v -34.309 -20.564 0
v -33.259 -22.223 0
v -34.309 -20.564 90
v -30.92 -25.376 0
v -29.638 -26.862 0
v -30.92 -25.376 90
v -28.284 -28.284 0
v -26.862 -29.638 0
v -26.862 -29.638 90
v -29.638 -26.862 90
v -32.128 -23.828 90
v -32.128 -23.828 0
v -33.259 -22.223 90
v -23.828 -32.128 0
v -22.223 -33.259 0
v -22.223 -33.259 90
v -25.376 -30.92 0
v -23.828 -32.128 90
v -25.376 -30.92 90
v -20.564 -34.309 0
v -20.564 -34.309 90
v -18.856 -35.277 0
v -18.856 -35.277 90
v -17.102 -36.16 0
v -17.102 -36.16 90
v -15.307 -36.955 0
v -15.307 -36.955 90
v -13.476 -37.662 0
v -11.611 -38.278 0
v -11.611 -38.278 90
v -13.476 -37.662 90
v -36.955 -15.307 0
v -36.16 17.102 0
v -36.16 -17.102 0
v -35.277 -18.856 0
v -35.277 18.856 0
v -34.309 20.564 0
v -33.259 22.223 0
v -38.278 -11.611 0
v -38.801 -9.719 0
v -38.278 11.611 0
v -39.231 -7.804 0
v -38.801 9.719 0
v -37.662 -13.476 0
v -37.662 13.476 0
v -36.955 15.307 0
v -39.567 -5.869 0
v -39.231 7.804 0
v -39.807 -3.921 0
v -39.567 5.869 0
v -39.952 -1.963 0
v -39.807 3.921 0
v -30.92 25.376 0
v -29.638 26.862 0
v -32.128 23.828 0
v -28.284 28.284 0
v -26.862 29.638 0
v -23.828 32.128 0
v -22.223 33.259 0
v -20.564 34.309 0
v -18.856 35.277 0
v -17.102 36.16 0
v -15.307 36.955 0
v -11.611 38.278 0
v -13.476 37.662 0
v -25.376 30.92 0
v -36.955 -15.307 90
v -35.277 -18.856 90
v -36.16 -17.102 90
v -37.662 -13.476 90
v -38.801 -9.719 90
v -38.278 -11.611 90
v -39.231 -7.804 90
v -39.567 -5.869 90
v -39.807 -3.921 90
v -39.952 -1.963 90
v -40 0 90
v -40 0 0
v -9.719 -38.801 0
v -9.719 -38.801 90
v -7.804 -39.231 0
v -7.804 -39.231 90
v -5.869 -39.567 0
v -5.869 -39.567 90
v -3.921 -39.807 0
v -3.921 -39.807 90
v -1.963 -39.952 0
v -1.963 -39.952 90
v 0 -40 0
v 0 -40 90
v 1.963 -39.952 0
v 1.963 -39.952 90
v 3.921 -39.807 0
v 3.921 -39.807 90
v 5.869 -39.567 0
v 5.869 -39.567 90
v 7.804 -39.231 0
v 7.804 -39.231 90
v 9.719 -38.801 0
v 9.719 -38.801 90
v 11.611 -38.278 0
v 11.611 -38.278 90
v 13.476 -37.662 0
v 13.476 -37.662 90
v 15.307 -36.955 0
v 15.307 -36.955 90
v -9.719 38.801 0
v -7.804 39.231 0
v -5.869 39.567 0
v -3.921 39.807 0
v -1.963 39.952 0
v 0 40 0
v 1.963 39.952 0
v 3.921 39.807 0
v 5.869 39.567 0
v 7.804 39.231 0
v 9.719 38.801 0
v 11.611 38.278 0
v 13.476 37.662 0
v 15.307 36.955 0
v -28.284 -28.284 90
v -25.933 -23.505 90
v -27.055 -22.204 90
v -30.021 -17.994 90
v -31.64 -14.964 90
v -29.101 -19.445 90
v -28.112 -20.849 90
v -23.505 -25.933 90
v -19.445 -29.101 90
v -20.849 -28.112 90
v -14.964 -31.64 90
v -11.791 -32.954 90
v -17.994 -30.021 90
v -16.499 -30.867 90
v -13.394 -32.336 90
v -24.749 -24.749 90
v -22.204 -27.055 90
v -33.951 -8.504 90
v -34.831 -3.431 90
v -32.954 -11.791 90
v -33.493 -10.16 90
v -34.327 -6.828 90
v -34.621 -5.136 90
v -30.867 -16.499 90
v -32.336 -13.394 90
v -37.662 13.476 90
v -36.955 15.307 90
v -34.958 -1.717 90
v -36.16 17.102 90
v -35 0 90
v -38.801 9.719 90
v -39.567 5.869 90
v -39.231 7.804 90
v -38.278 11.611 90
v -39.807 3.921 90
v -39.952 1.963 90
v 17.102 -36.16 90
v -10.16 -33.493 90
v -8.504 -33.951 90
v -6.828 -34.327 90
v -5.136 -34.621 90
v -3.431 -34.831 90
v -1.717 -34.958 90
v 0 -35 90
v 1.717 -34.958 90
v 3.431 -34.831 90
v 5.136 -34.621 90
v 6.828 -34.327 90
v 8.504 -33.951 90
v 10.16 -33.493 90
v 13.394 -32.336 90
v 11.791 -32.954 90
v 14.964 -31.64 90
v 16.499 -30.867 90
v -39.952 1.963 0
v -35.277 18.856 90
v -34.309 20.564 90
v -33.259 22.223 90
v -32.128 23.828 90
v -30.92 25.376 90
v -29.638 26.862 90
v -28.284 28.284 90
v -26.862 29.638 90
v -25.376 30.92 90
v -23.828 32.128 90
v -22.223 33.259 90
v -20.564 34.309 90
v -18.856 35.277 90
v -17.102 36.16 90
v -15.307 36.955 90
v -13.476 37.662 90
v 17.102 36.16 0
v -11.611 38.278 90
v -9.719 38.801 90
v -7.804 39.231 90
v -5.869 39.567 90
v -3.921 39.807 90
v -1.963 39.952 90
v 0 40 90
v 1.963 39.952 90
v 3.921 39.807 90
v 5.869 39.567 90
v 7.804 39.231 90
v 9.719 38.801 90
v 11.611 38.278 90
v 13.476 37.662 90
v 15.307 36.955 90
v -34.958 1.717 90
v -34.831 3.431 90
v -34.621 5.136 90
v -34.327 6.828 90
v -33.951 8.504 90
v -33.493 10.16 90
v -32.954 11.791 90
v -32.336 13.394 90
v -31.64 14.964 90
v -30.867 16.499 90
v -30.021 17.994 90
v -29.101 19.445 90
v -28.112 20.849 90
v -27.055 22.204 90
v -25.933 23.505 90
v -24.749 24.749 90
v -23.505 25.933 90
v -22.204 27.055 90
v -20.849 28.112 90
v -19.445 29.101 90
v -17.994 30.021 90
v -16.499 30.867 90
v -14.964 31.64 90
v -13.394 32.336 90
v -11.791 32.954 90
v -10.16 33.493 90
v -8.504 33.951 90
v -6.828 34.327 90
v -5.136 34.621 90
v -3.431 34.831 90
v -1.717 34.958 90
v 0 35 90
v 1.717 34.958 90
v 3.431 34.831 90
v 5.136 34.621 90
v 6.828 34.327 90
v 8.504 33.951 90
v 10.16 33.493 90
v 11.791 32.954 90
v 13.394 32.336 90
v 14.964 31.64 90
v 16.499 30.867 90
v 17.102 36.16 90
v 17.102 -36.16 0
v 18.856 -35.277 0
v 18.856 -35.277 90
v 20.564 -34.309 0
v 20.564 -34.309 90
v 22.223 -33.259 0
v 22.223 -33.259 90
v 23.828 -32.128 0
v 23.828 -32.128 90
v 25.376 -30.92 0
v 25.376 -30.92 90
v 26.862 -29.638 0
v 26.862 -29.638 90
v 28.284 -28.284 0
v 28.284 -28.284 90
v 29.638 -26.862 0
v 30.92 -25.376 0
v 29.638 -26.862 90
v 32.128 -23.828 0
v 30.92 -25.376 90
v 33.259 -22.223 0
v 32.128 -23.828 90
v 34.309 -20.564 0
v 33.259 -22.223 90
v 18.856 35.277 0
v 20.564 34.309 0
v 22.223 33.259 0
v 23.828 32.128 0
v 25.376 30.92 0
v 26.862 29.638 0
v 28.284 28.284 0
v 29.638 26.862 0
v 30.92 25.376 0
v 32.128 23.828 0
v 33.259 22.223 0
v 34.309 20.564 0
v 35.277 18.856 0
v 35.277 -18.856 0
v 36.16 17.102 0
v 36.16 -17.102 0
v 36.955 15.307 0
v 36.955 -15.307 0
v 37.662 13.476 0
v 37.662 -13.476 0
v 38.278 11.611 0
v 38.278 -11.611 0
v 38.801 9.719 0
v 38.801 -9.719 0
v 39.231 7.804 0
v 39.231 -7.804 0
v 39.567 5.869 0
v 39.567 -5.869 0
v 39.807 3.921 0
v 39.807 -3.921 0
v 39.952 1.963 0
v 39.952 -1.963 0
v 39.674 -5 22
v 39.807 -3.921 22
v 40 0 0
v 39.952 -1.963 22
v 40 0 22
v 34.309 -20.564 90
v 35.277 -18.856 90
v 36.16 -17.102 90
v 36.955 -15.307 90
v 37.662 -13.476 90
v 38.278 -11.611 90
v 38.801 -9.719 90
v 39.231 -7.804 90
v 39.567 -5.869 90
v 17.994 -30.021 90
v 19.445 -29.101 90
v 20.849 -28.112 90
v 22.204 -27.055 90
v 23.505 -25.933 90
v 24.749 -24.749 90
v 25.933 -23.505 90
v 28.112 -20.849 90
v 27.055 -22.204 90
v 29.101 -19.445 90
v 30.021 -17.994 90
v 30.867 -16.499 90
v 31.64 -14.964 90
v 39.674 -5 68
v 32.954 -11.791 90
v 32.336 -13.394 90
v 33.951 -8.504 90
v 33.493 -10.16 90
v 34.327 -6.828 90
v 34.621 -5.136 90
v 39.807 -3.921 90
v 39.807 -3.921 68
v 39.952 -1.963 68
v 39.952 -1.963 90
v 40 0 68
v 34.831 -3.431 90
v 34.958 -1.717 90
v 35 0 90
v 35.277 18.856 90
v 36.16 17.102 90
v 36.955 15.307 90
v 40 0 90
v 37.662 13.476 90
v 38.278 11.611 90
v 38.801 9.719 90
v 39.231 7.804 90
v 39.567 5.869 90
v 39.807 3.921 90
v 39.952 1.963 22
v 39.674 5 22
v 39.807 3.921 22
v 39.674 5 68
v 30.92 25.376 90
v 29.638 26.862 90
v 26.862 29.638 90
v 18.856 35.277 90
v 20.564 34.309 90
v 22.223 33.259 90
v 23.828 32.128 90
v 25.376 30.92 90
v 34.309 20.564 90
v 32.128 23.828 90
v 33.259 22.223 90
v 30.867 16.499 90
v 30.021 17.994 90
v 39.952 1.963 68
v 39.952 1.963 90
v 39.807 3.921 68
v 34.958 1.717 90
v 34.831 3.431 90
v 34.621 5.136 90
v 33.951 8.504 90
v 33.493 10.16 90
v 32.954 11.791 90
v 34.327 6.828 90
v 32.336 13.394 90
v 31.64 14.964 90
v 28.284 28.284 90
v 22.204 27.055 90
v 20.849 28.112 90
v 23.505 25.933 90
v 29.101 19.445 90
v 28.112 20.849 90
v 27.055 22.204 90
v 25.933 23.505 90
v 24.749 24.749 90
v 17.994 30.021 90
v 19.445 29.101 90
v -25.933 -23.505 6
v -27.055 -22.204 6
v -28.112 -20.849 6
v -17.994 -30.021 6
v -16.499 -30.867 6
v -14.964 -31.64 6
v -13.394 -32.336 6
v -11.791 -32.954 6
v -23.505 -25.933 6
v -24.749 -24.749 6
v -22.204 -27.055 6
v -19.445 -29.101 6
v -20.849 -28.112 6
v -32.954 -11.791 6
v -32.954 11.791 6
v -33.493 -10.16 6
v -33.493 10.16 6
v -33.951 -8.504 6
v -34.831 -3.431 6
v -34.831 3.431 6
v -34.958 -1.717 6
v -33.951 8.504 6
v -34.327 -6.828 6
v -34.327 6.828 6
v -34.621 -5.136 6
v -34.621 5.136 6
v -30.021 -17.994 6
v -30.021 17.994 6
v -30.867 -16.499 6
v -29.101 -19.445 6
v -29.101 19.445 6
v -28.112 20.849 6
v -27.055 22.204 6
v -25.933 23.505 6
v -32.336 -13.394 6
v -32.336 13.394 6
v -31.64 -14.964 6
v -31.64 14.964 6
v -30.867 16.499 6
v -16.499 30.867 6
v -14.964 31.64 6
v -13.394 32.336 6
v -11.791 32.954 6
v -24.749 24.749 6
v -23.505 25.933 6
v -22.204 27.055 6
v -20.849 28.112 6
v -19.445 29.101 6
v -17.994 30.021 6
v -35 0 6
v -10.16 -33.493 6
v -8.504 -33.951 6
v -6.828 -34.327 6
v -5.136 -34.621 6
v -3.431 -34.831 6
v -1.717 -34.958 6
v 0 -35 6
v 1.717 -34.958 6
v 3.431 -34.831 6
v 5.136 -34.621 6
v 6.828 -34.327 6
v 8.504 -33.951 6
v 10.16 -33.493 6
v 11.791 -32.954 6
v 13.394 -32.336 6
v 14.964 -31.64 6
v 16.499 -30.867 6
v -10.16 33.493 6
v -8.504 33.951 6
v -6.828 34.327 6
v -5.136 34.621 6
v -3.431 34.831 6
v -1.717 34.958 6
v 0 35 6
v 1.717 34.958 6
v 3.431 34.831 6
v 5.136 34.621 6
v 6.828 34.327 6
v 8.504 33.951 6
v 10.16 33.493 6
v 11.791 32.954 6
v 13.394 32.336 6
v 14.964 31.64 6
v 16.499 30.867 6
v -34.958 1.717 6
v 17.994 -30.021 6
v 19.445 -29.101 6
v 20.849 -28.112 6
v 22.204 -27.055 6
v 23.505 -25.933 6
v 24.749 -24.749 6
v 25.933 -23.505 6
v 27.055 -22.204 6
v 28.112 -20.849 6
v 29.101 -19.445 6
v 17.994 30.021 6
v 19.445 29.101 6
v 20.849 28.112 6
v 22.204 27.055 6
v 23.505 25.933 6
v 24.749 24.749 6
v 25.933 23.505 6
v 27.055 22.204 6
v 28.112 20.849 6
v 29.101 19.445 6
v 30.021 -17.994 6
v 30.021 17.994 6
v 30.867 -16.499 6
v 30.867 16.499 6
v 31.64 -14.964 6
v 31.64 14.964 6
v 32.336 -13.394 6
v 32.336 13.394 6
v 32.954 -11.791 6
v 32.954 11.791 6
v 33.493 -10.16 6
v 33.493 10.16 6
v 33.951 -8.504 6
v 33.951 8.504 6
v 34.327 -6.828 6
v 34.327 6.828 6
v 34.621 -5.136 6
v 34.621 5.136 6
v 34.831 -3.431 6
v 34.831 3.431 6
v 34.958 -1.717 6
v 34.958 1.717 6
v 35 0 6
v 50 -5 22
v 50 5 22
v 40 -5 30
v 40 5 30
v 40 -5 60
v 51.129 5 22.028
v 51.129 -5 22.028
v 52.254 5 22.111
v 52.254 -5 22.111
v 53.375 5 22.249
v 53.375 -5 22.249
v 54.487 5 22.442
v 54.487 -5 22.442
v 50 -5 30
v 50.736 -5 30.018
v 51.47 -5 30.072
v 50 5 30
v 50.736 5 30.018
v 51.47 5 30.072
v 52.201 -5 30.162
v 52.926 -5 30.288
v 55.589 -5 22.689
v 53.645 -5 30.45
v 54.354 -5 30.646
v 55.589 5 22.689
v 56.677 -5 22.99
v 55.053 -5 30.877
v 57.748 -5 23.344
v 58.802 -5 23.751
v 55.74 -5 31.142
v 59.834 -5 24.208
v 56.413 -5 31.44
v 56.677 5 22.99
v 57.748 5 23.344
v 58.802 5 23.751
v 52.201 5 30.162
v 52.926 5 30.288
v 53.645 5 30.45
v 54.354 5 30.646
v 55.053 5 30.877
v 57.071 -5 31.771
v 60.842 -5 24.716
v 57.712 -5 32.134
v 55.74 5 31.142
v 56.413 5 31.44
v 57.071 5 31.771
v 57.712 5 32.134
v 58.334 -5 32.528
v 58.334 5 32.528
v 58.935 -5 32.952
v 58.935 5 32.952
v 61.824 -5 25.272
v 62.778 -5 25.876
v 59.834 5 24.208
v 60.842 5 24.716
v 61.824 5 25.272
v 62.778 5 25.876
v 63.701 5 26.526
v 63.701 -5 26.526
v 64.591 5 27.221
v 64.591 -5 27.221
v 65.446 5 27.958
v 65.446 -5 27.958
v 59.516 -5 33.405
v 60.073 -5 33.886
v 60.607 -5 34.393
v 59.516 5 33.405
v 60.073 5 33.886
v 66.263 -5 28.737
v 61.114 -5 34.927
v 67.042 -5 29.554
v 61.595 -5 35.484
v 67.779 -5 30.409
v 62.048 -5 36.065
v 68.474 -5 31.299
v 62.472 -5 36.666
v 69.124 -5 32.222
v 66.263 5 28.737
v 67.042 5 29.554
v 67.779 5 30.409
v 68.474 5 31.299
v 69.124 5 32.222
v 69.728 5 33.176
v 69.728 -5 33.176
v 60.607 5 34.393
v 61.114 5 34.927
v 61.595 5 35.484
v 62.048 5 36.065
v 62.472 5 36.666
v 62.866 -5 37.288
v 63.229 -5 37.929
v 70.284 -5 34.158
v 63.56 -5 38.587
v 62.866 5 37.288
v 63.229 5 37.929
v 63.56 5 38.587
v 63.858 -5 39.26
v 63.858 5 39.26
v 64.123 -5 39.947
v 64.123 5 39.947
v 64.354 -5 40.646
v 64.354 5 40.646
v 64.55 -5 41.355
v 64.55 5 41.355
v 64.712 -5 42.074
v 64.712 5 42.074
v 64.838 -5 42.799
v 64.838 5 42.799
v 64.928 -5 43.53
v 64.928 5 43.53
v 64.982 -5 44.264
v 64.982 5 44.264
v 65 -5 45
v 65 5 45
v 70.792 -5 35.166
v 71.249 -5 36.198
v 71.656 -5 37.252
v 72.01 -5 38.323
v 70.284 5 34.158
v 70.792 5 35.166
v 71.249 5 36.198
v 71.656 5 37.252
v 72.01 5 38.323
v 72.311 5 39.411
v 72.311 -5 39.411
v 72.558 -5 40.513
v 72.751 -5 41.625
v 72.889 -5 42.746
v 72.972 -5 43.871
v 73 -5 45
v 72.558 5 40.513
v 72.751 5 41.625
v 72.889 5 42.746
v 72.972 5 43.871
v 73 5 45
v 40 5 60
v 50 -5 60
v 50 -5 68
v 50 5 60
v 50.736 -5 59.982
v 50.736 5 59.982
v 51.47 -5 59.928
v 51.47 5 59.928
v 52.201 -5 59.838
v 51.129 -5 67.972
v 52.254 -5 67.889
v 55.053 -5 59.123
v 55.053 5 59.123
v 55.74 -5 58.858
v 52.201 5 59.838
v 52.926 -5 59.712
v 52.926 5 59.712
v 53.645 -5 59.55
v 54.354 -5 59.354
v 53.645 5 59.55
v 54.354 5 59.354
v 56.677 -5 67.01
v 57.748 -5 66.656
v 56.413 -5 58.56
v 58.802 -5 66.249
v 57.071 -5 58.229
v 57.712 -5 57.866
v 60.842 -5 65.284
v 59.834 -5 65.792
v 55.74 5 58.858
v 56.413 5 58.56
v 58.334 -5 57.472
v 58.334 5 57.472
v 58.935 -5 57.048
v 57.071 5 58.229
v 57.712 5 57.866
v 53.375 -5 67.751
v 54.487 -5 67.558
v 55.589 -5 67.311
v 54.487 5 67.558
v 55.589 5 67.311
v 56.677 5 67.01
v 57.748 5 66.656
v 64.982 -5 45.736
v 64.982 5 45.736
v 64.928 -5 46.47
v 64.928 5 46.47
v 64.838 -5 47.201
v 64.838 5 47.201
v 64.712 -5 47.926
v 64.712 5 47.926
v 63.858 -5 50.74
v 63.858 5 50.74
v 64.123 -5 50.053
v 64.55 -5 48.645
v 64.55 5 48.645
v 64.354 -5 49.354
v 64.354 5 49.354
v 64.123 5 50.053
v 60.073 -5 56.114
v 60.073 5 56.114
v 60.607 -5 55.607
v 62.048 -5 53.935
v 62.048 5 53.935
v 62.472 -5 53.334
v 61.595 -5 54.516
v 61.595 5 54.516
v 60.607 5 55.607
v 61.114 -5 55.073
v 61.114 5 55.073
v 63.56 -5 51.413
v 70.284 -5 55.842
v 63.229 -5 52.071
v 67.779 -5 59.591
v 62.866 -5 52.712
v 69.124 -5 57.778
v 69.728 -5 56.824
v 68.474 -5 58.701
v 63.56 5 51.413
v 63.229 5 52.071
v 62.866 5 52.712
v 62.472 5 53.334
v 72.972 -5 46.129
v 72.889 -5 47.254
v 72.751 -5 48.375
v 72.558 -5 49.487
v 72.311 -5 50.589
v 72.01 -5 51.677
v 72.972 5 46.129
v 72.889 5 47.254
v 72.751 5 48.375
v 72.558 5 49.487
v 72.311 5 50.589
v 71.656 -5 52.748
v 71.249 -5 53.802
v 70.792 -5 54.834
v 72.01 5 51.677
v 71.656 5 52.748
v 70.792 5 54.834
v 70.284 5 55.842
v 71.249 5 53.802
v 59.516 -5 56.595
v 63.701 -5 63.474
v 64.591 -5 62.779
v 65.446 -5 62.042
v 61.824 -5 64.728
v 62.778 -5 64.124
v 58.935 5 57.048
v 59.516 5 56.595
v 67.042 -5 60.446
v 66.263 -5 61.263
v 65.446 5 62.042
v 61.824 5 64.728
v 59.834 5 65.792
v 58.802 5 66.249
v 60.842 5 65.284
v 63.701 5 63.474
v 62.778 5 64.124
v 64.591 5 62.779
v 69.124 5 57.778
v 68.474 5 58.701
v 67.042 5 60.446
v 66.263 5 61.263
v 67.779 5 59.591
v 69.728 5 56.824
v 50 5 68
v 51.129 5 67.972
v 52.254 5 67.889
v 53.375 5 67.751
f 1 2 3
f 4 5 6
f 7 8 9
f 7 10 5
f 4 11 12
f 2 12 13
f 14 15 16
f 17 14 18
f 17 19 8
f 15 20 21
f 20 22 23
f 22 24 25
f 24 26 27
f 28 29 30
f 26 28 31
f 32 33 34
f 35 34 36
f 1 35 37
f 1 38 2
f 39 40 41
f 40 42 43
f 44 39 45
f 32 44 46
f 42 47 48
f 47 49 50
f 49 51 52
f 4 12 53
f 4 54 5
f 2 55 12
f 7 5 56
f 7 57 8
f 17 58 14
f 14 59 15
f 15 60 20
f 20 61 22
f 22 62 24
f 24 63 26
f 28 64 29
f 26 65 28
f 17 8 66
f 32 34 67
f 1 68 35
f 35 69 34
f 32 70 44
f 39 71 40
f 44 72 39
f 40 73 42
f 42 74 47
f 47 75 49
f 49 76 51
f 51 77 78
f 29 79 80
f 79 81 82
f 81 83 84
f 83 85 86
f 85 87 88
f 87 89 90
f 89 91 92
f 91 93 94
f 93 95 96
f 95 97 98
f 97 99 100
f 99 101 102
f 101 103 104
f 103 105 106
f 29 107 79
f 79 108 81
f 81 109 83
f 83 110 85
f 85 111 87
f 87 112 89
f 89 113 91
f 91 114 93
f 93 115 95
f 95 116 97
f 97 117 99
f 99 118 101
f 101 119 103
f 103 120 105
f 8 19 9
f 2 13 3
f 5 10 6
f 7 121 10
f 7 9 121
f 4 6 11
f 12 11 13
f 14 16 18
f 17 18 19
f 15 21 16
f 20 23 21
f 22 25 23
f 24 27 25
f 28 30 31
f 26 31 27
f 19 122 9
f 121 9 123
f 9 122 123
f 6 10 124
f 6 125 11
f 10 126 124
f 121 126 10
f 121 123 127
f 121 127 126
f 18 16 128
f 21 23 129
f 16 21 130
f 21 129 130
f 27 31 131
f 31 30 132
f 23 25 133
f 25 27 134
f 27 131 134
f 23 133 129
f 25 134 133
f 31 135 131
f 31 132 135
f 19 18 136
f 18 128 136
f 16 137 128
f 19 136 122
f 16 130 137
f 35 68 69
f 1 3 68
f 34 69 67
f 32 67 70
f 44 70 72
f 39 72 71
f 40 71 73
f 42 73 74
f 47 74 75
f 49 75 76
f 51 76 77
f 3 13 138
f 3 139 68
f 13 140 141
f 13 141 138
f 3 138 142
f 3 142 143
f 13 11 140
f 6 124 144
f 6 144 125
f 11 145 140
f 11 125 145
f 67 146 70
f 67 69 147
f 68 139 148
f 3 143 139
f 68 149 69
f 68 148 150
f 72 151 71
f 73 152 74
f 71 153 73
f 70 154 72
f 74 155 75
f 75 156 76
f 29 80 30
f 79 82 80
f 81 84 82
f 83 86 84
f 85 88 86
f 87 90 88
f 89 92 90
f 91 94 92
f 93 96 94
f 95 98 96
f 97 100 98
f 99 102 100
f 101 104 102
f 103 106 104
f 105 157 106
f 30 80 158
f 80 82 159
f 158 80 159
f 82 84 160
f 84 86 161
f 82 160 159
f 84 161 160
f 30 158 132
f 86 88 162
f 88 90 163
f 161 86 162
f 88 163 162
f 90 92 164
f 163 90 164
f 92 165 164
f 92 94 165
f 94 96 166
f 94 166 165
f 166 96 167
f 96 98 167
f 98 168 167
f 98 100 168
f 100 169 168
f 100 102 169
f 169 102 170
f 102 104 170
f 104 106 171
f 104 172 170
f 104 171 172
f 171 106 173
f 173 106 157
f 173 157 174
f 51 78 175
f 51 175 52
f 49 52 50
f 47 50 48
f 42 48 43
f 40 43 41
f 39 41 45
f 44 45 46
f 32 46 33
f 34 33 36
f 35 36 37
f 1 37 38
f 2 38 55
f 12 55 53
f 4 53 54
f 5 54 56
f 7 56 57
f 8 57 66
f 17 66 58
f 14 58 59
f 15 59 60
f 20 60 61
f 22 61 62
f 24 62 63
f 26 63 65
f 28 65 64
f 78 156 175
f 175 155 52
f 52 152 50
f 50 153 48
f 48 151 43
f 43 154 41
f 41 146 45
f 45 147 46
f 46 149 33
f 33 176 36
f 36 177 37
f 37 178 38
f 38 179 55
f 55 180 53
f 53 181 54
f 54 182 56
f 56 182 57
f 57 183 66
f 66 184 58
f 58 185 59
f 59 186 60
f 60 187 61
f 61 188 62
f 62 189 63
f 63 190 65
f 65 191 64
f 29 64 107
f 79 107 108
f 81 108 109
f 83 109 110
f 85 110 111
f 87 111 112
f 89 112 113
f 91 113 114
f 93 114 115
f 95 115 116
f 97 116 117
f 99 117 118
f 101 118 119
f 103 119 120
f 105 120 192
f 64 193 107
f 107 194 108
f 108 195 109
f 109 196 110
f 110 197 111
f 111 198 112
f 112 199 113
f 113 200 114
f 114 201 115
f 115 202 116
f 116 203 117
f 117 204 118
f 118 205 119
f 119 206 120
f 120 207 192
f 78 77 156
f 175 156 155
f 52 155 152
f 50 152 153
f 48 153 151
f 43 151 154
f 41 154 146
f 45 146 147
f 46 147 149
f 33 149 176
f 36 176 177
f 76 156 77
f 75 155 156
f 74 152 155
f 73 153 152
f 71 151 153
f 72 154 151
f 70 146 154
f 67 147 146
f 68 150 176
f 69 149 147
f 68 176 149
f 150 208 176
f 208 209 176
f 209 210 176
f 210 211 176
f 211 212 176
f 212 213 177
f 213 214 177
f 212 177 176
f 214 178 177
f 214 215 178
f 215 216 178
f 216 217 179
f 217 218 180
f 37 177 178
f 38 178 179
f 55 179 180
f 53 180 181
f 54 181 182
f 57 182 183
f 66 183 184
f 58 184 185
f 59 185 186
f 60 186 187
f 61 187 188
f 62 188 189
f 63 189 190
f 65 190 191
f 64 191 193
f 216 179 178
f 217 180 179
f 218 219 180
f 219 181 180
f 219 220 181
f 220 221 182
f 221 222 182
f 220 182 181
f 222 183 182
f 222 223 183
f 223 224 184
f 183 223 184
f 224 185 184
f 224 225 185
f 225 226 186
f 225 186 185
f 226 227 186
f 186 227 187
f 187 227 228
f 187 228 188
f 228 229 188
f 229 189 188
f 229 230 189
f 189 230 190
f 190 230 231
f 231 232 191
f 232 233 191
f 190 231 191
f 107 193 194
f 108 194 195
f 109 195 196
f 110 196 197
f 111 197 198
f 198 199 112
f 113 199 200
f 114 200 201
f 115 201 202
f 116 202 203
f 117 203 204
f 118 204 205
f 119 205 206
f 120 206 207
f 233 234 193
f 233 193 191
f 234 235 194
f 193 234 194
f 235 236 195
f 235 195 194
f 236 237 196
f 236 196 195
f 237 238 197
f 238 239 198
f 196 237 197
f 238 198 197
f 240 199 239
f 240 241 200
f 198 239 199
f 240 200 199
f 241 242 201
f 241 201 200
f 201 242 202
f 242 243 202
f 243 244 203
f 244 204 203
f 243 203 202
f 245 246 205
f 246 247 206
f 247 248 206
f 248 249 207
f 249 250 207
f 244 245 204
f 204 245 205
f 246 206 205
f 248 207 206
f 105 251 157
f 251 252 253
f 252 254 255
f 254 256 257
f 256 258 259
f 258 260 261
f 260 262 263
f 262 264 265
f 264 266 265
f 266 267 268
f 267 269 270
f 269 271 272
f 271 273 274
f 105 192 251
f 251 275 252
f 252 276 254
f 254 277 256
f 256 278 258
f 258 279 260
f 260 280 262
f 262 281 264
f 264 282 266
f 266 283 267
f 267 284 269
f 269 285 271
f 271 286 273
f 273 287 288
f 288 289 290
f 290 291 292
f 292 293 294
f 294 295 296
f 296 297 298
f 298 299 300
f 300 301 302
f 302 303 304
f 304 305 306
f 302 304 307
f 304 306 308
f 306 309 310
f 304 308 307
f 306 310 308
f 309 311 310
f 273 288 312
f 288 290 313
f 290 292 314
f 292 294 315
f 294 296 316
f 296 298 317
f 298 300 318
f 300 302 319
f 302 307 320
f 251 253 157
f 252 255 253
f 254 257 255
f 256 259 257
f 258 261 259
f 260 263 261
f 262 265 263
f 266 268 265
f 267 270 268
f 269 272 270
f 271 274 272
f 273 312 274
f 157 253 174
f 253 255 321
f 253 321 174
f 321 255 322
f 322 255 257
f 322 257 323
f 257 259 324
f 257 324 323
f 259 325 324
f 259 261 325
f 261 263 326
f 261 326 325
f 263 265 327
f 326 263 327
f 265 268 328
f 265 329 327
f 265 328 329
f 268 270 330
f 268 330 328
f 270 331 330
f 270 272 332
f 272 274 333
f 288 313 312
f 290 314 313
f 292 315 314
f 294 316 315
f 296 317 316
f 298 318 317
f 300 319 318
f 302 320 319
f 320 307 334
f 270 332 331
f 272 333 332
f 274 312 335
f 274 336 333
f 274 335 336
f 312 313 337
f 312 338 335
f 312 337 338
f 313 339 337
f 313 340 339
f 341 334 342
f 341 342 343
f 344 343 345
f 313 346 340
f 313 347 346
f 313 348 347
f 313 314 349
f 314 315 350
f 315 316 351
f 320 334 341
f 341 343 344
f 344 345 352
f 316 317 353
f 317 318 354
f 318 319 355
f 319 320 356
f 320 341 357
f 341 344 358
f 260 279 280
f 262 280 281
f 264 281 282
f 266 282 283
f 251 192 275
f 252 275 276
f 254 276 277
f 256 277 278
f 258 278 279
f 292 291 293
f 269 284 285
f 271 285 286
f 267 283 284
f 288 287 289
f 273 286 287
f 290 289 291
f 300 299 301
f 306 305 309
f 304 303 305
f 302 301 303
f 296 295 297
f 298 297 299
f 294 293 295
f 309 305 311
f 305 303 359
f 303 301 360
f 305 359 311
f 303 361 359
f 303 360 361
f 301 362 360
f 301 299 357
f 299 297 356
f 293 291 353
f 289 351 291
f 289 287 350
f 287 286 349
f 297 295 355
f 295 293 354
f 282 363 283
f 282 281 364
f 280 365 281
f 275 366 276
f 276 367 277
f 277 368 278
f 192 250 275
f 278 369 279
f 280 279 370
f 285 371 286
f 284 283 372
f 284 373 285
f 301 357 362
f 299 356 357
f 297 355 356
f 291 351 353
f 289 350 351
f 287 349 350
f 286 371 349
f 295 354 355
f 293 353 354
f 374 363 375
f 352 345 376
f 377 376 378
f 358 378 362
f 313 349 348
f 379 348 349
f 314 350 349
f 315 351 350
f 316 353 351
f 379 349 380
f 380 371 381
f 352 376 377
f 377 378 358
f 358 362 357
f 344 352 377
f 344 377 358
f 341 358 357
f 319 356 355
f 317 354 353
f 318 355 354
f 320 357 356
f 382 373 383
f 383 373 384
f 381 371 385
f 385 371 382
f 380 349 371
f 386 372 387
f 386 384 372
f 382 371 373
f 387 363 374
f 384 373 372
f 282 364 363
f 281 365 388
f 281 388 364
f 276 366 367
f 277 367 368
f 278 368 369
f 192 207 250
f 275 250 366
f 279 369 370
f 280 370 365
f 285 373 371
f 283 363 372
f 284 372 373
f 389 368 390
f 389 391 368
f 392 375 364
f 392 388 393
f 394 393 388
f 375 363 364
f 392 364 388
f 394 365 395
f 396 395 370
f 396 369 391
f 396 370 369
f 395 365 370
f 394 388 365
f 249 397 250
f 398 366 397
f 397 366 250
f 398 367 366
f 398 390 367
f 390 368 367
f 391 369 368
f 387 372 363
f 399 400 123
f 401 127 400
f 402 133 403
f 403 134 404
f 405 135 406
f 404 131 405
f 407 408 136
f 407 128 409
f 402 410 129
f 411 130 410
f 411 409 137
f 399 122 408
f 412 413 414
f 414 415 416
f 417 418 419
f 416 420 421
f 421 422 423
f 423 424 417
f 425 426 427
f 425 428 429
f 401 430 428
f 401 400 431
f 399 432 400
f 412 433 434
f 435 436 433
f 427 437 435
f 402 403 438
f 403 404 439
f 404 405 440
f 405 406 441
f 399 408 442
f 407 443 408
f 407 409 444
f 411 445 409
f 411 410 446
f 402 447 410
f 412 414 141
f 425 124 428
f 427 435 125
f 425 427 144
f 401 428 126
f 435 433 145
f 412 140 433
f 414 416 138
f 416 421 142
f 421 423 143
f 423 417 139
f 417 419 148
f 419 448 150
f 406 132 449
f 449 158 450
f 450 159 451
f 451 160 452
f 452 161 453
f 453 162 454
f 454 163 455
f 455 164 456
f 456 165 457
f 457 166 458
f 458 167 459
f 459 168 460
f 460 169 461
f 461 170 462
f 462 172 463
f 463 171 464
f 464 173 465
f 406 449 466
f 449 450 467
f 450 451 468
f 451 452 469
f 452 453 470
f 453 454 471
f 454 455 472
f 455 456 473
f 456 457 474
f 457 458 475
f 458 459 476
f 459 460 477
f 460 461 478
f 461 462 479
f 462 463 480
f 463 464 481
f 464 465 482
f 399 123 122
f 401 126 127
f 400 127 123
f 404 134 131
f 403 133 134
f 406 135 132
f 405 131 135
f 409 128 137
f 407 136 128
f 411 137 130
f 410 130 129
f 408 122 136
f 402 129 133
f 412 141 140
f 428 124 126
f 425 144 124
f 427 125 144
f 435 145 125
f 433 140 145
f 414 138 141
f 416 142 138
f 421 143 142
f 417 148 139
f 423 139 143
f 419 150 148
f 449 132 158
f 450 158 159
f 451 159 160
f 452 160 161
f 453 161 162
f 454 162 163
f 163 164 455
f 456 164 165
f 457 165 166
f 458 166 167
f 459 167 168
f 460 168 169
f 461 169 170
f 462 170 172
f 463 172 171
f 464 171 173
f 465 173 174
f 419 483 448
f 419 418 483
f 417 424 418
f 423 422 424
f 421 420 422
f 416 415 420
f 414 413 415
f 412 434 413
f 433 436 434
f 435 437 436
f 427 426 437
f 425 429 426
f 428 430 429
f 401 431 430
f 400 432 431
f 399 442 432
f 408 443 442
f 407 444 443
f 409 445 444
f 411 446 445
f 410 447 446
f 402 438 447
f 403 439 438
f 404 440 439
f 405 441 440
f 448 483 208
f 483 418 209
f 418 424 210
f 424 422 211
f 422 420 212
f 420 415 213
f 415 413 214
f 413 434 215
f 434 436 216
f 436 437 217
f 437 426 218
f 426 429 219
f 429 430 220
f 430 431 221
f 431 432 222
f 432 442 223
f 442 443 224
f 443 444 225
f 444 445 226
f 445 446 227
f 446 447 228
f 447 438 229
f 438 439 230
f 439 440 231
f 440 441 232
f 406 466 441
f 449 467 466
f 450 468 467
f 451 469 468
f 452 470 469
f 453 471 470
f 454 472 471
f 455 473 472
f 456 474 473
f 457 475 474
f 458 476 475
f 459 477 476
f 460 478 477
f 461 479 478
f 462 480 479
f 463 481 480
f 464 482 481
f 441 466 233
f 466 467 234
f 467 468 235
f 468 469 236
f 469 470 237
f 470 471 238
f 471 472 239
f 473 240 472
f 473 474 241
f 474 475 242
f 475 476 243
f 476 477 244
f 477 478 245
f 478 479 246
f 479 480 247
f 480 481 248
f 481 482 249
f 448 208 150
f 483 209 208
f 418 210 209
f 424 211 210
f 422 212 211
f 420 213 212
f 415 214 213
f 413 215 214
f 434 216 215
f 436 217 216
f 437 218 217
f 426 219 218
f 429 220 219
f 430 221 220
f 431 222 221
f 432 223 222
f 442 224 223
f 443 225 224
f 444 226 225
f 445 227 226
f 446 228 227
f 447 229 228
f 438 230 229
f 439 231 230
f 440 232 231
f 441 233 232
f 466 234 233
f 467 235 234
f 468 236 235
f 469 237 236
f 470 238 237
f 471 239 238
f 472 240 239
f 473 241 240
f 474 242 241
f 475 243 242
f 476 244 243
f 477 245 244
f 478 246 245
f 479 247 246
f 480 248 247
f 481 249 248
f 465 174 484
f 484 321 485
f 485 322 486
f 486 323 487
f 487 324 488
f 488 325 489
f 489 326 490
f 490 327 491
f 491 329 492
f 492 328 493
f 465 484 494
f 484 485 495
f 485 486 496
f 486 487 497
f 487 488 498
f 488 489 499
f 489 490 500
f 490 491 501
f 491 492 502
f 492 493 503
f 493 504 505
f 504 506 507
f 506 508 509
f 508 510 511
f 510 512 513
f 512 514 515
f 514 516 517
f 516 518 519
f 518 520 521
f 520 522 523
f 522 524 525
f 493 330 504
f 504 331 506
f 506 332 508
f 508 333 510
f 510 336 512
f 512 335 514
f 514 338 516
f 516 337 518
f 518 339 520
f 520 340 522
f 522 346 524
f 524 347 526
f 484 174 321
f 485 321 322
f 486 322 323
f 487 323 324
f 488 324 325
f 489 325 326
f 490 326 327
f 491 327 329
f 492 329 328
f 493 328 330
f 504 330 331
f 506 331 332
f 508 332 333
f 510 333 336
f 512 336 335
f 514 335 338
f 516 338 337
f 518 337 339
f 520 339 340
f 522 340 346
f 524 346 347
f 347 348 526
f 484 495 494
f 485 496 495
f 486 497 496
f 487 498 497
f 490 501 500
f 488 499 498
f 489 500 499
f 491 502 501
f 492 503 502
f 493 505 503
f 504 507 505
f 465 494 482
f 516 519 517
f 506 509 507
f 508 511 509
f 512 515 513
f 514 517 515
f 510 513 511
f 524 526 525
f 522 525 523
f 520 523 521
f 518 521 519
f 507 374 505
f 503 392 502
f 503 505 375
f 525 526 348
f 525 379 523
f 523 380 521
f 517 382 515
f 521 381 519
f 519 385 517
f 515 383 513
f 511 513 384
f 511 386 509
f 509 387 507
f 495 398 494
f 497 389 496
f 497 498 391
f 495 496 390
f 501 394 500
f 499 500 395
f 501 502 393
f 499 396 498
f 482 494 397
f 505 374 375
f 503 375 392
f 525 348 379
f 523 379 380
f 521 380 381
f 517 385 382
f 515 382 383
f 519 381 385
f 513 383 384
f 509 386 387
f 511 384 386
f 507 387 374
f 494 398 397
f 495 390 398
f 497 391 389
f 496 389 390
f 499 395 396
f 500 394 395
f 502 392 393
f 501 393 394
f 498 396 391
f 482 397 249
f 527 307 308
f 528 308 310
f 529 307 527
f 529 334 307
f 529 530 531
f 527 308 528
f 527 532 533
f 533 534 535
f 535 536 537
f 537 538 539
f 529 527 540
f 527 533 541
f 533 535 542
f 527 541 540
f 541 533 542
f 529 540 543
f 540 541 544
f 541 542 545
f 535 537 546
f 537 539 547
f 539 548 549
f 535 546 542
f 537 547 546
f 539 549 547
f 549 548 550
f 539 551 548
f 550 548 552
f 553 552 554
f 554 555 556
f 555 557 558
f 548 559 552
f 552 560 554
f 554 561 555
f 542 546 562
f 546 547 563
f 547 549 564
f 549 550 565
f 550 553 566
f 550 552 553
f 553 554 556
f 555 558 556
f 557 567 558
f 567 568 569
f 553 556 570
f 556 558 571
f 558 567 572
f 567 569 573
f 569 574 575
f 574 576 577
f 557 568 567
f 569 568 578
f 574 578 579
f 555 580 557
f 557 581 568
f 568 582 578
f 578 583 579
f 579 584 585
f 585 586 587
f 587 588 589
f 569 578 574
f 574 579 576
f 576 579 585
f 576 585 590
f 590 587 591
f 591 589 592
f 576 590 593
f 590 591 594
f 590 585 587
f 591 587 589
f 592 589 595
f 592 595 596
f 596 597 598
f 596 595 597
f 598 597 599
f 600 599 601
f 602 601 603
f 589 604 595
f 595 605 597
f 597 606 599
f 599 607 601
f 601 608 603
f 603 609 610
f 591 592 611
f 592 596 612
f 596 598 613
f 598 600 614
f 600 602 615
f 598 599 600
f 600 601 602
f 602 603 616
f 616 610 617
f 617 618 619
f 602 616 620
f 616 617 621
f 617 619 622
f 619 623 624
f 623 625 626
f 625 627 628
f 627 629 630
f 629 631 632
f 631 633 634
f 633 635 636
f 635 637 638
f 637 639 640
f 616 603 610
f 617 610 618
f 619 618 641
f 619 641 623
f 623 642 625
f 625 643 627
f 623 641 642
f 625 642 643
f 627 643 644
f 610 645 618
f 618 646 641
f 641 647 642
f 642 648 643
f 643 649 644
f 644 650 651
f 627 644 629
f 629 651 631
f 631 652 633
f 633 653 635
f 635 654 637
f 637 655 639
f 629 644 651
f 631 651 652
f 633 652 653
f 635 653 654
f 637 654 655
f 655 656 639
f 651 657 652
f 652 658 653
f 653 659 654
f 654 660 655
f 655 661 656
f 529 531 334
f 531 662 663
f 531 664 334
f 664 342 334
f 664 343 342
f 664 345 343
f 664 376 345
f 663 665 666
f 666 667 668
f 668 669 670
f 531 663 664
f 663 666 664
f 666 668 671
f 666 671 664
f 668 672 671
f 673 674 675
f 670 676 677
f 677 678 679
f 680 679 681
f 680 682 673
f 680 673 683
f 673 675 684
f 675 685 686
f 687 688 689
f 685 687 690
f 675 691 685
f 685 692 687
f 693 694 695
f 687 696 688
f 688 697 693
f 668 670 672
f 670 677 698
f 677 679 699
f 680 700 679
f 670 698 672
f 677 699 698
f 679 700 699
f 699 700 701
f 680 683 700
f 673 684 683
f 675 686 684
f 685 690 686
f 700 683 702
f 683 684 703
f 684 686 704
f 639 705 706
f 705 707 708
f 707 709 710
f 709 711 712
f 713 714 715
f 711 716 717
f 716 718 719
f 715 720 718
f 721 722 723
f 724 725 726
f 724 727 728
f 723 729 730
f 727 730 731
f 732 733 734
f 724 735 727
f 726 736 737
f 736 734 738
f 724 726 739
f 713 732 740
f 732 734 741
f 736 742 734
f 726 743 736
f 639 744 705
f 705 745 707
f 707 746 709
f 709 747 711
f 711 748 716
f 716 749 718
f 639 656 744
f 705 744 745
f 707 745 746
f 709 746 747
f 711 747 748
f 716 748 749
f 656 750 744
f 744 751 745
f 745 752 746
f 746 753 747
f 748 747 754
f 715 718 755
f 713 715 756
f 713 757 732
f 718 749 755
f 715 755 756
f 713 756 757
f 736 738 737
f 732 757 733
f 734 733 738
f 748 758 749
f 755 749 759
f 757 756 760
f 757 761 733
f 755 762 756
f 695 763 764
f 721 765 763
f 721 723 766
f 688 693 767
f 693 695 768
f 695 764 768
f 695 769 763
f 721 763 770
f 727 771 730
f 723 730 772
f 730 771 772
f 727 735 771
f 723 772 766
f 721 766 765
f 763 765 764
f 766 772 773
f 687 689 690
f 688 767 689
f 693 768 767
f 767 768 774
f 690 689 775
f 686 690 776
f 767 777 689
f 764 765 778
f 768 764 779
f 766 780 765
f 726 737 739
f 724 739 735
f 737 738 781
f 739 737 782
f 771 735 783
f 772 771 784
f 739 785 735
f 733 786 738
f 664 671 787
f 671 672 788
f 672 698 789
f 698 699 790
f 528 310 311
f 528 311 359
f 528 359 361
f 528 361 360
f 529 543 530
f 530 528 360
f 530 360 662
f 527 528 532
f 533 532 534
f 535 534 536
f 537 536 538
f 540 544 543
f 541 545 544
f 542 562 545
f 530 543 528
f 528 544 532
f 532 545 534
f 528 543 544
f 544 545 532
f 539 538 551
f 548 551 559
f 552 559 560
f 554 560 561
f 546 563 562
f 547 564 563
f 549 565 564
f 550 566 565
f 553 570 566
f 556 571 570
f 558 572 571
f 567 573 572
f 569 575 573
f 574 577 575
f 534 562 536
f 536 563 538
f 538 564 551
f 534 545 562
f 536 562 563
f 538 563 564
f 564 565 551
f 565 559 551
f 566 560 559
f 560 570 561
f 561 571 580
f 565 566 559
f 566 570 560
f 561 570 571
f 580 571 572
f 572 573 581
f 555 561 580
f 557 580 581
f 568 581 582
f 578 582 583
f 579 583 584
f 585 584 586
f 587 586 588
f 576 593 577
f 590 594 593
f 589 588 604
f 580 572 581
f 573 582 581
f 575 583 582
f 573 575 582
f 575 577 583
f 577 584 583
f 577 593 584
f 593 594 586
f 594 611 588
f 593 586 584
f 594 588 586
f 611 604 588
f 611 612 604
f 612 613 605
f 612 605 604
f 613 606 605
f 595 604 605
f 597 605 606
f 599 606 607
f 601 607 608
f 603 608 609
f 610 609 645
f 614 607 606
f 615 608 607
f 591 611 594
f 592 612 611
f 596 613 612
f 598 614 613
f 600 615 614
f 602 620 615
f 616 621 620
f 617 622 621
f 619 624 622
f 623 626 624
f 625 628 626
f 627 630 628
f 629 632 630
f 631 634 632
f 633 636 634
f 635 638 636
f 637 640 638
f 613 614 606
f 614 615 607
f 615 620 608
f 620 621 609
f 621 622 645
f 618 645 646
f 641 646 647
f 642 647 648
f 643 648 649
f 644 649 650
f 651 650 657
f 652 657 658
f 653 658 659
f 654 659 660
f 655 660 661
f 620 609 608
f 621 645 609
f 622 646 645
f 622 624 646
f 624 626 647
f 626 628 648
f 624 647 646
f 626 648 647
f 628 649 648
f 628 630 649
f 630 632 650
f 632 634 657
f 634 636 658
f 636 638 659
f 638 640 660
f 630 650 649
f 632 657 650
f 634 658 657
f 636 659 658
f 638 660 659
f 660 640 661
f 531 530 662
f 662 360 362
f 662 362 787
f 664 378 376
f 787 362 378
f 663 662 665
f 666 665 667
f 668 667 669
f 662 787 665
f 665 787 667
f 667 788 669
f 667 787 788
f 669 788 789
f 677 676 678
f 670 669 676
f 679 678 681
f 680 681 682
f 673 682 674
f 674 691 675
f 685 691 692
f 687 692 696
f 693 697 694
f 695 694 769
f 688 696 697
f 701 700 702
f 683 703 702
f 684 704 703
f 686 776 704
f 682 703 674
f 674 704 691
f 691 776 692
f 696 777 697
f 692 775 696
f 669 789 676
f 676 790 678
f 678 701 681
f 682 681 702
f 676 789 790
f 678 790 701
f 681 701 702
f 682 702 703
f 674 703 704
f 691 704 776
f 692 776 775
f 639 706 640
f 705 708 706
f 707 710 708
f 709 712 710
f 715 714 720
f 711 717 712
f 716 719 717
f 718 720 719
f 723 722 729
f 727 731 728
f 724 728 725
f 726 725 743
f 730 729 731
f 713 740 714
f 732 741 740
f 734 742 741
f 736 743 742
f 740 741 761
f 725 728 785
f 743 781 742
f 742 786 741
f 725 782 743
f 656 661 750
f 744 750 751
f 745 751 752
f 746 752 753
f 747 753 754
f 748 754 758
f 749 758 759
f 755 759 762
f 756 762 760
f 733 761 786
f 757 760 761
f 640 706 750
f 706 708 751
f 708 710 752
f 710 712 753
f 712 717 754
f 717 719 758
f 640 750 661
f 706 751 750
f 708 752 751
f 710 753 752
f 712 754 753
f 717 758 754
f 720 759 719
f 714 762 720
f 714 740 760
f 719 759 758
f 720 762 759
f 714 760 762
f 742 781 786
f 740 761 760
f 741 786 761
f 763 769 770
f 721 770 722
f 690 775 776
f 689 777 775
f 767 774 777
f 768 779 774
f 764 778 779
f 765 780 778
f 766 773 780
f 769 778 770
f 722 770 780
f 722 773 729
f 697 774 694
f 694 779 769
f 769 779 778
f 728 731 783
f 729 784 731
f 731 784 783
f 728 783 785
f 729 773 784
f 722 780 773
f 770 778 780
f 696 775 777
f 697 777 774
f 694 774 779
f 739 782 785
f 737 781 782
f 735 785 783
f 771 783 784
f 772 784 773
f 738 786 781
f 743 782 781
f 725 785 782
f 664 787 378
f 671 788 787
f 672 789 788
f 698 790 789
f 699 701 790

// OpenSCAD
// ===== マグカップ（取手は +X 方向のみ） =====
$fn = 128;

// --- 本体パラメータ ---
outer_d  = 80;   // 外径
inner_d  = 70;   // 内径
height   = 90;   // 高さ
bottom_t = 6;    // 底面の厚み

outer_r = outer_d / 2;
inner_r = inner_d / 2;

// --- 取手パラメータ ---
handle_w = 10;        // 取手の幅（Y 方向）
handle_t = 8;         // 取手（環）の肉厚
open_h   = 30;        // 指を入れる空間の高さ
open_w   = 25;        // 指を入れる空間の幅（本体表面から外側へ）
handle_z = height / 2; // 取手の中心高さ（マグ中央）
embed    = 2;         // 本体への食い込み量（確実に union するため）

// --- 本体 ---
module body() {
    difference() {
        cylinder(r = outer_r, h = height);
        translate([0, 0, bottom_t])
            cylinder(r = inner_r, h = height);
    }
}

// --- 取手の 2D プロファイル（XZ 平面、D 字形状） ---
module handle_profile_2d() {
    ri = open_h / 2;                 // 内側半円の半径 = 15
    ro = ri + handle_t;              // 外側半円の半径 = 23
    cx = outer_r + (open_w - ri);    // 半円の中心 X = 50
    x_in = outer_r - embed;          // 本体側の直線位置（本体に少し食い込む）

    difference() {
        // 外形 D：直線部（矩形）＋外側半円、本体側でクリップ
        intersection() {
            union() {
                translate([x_in, -ro]) square([cx - x_in, 2 * ro]);
                translate([cx, 0])      circle(r = ro);
            }
            translate([x_in, -ro - 1]) square([100, 2 * ro + 2]);
        }
        // 内側の空間 D：高さ 30 × 幅 25（本体表面から）
        intersection() {
            union() {
                translate([outer_r, -ri]) square([cx - outer_r, 2 * ri]);
                translate([cx, 0])         circle(r = ri);
            }
            translate([outer_r, -ri - 1]) square([100, 2 * ri + 2]);
        }
    }
}

// --- 取手（+X 側の側面のみ） ---
module handle() {
    translate([0, 0, handle_z])
        rotate([90, 0, 0])              // XY 平面 → XZ 平面へ（Y 方向に押し出し）
            linear_extrude(height = handle_w, center = true)
                handle_profile_2d();
}

// --- 組み立て ---
module mug() {
    union() {
        body();
        handle();
    }
}

mug();
